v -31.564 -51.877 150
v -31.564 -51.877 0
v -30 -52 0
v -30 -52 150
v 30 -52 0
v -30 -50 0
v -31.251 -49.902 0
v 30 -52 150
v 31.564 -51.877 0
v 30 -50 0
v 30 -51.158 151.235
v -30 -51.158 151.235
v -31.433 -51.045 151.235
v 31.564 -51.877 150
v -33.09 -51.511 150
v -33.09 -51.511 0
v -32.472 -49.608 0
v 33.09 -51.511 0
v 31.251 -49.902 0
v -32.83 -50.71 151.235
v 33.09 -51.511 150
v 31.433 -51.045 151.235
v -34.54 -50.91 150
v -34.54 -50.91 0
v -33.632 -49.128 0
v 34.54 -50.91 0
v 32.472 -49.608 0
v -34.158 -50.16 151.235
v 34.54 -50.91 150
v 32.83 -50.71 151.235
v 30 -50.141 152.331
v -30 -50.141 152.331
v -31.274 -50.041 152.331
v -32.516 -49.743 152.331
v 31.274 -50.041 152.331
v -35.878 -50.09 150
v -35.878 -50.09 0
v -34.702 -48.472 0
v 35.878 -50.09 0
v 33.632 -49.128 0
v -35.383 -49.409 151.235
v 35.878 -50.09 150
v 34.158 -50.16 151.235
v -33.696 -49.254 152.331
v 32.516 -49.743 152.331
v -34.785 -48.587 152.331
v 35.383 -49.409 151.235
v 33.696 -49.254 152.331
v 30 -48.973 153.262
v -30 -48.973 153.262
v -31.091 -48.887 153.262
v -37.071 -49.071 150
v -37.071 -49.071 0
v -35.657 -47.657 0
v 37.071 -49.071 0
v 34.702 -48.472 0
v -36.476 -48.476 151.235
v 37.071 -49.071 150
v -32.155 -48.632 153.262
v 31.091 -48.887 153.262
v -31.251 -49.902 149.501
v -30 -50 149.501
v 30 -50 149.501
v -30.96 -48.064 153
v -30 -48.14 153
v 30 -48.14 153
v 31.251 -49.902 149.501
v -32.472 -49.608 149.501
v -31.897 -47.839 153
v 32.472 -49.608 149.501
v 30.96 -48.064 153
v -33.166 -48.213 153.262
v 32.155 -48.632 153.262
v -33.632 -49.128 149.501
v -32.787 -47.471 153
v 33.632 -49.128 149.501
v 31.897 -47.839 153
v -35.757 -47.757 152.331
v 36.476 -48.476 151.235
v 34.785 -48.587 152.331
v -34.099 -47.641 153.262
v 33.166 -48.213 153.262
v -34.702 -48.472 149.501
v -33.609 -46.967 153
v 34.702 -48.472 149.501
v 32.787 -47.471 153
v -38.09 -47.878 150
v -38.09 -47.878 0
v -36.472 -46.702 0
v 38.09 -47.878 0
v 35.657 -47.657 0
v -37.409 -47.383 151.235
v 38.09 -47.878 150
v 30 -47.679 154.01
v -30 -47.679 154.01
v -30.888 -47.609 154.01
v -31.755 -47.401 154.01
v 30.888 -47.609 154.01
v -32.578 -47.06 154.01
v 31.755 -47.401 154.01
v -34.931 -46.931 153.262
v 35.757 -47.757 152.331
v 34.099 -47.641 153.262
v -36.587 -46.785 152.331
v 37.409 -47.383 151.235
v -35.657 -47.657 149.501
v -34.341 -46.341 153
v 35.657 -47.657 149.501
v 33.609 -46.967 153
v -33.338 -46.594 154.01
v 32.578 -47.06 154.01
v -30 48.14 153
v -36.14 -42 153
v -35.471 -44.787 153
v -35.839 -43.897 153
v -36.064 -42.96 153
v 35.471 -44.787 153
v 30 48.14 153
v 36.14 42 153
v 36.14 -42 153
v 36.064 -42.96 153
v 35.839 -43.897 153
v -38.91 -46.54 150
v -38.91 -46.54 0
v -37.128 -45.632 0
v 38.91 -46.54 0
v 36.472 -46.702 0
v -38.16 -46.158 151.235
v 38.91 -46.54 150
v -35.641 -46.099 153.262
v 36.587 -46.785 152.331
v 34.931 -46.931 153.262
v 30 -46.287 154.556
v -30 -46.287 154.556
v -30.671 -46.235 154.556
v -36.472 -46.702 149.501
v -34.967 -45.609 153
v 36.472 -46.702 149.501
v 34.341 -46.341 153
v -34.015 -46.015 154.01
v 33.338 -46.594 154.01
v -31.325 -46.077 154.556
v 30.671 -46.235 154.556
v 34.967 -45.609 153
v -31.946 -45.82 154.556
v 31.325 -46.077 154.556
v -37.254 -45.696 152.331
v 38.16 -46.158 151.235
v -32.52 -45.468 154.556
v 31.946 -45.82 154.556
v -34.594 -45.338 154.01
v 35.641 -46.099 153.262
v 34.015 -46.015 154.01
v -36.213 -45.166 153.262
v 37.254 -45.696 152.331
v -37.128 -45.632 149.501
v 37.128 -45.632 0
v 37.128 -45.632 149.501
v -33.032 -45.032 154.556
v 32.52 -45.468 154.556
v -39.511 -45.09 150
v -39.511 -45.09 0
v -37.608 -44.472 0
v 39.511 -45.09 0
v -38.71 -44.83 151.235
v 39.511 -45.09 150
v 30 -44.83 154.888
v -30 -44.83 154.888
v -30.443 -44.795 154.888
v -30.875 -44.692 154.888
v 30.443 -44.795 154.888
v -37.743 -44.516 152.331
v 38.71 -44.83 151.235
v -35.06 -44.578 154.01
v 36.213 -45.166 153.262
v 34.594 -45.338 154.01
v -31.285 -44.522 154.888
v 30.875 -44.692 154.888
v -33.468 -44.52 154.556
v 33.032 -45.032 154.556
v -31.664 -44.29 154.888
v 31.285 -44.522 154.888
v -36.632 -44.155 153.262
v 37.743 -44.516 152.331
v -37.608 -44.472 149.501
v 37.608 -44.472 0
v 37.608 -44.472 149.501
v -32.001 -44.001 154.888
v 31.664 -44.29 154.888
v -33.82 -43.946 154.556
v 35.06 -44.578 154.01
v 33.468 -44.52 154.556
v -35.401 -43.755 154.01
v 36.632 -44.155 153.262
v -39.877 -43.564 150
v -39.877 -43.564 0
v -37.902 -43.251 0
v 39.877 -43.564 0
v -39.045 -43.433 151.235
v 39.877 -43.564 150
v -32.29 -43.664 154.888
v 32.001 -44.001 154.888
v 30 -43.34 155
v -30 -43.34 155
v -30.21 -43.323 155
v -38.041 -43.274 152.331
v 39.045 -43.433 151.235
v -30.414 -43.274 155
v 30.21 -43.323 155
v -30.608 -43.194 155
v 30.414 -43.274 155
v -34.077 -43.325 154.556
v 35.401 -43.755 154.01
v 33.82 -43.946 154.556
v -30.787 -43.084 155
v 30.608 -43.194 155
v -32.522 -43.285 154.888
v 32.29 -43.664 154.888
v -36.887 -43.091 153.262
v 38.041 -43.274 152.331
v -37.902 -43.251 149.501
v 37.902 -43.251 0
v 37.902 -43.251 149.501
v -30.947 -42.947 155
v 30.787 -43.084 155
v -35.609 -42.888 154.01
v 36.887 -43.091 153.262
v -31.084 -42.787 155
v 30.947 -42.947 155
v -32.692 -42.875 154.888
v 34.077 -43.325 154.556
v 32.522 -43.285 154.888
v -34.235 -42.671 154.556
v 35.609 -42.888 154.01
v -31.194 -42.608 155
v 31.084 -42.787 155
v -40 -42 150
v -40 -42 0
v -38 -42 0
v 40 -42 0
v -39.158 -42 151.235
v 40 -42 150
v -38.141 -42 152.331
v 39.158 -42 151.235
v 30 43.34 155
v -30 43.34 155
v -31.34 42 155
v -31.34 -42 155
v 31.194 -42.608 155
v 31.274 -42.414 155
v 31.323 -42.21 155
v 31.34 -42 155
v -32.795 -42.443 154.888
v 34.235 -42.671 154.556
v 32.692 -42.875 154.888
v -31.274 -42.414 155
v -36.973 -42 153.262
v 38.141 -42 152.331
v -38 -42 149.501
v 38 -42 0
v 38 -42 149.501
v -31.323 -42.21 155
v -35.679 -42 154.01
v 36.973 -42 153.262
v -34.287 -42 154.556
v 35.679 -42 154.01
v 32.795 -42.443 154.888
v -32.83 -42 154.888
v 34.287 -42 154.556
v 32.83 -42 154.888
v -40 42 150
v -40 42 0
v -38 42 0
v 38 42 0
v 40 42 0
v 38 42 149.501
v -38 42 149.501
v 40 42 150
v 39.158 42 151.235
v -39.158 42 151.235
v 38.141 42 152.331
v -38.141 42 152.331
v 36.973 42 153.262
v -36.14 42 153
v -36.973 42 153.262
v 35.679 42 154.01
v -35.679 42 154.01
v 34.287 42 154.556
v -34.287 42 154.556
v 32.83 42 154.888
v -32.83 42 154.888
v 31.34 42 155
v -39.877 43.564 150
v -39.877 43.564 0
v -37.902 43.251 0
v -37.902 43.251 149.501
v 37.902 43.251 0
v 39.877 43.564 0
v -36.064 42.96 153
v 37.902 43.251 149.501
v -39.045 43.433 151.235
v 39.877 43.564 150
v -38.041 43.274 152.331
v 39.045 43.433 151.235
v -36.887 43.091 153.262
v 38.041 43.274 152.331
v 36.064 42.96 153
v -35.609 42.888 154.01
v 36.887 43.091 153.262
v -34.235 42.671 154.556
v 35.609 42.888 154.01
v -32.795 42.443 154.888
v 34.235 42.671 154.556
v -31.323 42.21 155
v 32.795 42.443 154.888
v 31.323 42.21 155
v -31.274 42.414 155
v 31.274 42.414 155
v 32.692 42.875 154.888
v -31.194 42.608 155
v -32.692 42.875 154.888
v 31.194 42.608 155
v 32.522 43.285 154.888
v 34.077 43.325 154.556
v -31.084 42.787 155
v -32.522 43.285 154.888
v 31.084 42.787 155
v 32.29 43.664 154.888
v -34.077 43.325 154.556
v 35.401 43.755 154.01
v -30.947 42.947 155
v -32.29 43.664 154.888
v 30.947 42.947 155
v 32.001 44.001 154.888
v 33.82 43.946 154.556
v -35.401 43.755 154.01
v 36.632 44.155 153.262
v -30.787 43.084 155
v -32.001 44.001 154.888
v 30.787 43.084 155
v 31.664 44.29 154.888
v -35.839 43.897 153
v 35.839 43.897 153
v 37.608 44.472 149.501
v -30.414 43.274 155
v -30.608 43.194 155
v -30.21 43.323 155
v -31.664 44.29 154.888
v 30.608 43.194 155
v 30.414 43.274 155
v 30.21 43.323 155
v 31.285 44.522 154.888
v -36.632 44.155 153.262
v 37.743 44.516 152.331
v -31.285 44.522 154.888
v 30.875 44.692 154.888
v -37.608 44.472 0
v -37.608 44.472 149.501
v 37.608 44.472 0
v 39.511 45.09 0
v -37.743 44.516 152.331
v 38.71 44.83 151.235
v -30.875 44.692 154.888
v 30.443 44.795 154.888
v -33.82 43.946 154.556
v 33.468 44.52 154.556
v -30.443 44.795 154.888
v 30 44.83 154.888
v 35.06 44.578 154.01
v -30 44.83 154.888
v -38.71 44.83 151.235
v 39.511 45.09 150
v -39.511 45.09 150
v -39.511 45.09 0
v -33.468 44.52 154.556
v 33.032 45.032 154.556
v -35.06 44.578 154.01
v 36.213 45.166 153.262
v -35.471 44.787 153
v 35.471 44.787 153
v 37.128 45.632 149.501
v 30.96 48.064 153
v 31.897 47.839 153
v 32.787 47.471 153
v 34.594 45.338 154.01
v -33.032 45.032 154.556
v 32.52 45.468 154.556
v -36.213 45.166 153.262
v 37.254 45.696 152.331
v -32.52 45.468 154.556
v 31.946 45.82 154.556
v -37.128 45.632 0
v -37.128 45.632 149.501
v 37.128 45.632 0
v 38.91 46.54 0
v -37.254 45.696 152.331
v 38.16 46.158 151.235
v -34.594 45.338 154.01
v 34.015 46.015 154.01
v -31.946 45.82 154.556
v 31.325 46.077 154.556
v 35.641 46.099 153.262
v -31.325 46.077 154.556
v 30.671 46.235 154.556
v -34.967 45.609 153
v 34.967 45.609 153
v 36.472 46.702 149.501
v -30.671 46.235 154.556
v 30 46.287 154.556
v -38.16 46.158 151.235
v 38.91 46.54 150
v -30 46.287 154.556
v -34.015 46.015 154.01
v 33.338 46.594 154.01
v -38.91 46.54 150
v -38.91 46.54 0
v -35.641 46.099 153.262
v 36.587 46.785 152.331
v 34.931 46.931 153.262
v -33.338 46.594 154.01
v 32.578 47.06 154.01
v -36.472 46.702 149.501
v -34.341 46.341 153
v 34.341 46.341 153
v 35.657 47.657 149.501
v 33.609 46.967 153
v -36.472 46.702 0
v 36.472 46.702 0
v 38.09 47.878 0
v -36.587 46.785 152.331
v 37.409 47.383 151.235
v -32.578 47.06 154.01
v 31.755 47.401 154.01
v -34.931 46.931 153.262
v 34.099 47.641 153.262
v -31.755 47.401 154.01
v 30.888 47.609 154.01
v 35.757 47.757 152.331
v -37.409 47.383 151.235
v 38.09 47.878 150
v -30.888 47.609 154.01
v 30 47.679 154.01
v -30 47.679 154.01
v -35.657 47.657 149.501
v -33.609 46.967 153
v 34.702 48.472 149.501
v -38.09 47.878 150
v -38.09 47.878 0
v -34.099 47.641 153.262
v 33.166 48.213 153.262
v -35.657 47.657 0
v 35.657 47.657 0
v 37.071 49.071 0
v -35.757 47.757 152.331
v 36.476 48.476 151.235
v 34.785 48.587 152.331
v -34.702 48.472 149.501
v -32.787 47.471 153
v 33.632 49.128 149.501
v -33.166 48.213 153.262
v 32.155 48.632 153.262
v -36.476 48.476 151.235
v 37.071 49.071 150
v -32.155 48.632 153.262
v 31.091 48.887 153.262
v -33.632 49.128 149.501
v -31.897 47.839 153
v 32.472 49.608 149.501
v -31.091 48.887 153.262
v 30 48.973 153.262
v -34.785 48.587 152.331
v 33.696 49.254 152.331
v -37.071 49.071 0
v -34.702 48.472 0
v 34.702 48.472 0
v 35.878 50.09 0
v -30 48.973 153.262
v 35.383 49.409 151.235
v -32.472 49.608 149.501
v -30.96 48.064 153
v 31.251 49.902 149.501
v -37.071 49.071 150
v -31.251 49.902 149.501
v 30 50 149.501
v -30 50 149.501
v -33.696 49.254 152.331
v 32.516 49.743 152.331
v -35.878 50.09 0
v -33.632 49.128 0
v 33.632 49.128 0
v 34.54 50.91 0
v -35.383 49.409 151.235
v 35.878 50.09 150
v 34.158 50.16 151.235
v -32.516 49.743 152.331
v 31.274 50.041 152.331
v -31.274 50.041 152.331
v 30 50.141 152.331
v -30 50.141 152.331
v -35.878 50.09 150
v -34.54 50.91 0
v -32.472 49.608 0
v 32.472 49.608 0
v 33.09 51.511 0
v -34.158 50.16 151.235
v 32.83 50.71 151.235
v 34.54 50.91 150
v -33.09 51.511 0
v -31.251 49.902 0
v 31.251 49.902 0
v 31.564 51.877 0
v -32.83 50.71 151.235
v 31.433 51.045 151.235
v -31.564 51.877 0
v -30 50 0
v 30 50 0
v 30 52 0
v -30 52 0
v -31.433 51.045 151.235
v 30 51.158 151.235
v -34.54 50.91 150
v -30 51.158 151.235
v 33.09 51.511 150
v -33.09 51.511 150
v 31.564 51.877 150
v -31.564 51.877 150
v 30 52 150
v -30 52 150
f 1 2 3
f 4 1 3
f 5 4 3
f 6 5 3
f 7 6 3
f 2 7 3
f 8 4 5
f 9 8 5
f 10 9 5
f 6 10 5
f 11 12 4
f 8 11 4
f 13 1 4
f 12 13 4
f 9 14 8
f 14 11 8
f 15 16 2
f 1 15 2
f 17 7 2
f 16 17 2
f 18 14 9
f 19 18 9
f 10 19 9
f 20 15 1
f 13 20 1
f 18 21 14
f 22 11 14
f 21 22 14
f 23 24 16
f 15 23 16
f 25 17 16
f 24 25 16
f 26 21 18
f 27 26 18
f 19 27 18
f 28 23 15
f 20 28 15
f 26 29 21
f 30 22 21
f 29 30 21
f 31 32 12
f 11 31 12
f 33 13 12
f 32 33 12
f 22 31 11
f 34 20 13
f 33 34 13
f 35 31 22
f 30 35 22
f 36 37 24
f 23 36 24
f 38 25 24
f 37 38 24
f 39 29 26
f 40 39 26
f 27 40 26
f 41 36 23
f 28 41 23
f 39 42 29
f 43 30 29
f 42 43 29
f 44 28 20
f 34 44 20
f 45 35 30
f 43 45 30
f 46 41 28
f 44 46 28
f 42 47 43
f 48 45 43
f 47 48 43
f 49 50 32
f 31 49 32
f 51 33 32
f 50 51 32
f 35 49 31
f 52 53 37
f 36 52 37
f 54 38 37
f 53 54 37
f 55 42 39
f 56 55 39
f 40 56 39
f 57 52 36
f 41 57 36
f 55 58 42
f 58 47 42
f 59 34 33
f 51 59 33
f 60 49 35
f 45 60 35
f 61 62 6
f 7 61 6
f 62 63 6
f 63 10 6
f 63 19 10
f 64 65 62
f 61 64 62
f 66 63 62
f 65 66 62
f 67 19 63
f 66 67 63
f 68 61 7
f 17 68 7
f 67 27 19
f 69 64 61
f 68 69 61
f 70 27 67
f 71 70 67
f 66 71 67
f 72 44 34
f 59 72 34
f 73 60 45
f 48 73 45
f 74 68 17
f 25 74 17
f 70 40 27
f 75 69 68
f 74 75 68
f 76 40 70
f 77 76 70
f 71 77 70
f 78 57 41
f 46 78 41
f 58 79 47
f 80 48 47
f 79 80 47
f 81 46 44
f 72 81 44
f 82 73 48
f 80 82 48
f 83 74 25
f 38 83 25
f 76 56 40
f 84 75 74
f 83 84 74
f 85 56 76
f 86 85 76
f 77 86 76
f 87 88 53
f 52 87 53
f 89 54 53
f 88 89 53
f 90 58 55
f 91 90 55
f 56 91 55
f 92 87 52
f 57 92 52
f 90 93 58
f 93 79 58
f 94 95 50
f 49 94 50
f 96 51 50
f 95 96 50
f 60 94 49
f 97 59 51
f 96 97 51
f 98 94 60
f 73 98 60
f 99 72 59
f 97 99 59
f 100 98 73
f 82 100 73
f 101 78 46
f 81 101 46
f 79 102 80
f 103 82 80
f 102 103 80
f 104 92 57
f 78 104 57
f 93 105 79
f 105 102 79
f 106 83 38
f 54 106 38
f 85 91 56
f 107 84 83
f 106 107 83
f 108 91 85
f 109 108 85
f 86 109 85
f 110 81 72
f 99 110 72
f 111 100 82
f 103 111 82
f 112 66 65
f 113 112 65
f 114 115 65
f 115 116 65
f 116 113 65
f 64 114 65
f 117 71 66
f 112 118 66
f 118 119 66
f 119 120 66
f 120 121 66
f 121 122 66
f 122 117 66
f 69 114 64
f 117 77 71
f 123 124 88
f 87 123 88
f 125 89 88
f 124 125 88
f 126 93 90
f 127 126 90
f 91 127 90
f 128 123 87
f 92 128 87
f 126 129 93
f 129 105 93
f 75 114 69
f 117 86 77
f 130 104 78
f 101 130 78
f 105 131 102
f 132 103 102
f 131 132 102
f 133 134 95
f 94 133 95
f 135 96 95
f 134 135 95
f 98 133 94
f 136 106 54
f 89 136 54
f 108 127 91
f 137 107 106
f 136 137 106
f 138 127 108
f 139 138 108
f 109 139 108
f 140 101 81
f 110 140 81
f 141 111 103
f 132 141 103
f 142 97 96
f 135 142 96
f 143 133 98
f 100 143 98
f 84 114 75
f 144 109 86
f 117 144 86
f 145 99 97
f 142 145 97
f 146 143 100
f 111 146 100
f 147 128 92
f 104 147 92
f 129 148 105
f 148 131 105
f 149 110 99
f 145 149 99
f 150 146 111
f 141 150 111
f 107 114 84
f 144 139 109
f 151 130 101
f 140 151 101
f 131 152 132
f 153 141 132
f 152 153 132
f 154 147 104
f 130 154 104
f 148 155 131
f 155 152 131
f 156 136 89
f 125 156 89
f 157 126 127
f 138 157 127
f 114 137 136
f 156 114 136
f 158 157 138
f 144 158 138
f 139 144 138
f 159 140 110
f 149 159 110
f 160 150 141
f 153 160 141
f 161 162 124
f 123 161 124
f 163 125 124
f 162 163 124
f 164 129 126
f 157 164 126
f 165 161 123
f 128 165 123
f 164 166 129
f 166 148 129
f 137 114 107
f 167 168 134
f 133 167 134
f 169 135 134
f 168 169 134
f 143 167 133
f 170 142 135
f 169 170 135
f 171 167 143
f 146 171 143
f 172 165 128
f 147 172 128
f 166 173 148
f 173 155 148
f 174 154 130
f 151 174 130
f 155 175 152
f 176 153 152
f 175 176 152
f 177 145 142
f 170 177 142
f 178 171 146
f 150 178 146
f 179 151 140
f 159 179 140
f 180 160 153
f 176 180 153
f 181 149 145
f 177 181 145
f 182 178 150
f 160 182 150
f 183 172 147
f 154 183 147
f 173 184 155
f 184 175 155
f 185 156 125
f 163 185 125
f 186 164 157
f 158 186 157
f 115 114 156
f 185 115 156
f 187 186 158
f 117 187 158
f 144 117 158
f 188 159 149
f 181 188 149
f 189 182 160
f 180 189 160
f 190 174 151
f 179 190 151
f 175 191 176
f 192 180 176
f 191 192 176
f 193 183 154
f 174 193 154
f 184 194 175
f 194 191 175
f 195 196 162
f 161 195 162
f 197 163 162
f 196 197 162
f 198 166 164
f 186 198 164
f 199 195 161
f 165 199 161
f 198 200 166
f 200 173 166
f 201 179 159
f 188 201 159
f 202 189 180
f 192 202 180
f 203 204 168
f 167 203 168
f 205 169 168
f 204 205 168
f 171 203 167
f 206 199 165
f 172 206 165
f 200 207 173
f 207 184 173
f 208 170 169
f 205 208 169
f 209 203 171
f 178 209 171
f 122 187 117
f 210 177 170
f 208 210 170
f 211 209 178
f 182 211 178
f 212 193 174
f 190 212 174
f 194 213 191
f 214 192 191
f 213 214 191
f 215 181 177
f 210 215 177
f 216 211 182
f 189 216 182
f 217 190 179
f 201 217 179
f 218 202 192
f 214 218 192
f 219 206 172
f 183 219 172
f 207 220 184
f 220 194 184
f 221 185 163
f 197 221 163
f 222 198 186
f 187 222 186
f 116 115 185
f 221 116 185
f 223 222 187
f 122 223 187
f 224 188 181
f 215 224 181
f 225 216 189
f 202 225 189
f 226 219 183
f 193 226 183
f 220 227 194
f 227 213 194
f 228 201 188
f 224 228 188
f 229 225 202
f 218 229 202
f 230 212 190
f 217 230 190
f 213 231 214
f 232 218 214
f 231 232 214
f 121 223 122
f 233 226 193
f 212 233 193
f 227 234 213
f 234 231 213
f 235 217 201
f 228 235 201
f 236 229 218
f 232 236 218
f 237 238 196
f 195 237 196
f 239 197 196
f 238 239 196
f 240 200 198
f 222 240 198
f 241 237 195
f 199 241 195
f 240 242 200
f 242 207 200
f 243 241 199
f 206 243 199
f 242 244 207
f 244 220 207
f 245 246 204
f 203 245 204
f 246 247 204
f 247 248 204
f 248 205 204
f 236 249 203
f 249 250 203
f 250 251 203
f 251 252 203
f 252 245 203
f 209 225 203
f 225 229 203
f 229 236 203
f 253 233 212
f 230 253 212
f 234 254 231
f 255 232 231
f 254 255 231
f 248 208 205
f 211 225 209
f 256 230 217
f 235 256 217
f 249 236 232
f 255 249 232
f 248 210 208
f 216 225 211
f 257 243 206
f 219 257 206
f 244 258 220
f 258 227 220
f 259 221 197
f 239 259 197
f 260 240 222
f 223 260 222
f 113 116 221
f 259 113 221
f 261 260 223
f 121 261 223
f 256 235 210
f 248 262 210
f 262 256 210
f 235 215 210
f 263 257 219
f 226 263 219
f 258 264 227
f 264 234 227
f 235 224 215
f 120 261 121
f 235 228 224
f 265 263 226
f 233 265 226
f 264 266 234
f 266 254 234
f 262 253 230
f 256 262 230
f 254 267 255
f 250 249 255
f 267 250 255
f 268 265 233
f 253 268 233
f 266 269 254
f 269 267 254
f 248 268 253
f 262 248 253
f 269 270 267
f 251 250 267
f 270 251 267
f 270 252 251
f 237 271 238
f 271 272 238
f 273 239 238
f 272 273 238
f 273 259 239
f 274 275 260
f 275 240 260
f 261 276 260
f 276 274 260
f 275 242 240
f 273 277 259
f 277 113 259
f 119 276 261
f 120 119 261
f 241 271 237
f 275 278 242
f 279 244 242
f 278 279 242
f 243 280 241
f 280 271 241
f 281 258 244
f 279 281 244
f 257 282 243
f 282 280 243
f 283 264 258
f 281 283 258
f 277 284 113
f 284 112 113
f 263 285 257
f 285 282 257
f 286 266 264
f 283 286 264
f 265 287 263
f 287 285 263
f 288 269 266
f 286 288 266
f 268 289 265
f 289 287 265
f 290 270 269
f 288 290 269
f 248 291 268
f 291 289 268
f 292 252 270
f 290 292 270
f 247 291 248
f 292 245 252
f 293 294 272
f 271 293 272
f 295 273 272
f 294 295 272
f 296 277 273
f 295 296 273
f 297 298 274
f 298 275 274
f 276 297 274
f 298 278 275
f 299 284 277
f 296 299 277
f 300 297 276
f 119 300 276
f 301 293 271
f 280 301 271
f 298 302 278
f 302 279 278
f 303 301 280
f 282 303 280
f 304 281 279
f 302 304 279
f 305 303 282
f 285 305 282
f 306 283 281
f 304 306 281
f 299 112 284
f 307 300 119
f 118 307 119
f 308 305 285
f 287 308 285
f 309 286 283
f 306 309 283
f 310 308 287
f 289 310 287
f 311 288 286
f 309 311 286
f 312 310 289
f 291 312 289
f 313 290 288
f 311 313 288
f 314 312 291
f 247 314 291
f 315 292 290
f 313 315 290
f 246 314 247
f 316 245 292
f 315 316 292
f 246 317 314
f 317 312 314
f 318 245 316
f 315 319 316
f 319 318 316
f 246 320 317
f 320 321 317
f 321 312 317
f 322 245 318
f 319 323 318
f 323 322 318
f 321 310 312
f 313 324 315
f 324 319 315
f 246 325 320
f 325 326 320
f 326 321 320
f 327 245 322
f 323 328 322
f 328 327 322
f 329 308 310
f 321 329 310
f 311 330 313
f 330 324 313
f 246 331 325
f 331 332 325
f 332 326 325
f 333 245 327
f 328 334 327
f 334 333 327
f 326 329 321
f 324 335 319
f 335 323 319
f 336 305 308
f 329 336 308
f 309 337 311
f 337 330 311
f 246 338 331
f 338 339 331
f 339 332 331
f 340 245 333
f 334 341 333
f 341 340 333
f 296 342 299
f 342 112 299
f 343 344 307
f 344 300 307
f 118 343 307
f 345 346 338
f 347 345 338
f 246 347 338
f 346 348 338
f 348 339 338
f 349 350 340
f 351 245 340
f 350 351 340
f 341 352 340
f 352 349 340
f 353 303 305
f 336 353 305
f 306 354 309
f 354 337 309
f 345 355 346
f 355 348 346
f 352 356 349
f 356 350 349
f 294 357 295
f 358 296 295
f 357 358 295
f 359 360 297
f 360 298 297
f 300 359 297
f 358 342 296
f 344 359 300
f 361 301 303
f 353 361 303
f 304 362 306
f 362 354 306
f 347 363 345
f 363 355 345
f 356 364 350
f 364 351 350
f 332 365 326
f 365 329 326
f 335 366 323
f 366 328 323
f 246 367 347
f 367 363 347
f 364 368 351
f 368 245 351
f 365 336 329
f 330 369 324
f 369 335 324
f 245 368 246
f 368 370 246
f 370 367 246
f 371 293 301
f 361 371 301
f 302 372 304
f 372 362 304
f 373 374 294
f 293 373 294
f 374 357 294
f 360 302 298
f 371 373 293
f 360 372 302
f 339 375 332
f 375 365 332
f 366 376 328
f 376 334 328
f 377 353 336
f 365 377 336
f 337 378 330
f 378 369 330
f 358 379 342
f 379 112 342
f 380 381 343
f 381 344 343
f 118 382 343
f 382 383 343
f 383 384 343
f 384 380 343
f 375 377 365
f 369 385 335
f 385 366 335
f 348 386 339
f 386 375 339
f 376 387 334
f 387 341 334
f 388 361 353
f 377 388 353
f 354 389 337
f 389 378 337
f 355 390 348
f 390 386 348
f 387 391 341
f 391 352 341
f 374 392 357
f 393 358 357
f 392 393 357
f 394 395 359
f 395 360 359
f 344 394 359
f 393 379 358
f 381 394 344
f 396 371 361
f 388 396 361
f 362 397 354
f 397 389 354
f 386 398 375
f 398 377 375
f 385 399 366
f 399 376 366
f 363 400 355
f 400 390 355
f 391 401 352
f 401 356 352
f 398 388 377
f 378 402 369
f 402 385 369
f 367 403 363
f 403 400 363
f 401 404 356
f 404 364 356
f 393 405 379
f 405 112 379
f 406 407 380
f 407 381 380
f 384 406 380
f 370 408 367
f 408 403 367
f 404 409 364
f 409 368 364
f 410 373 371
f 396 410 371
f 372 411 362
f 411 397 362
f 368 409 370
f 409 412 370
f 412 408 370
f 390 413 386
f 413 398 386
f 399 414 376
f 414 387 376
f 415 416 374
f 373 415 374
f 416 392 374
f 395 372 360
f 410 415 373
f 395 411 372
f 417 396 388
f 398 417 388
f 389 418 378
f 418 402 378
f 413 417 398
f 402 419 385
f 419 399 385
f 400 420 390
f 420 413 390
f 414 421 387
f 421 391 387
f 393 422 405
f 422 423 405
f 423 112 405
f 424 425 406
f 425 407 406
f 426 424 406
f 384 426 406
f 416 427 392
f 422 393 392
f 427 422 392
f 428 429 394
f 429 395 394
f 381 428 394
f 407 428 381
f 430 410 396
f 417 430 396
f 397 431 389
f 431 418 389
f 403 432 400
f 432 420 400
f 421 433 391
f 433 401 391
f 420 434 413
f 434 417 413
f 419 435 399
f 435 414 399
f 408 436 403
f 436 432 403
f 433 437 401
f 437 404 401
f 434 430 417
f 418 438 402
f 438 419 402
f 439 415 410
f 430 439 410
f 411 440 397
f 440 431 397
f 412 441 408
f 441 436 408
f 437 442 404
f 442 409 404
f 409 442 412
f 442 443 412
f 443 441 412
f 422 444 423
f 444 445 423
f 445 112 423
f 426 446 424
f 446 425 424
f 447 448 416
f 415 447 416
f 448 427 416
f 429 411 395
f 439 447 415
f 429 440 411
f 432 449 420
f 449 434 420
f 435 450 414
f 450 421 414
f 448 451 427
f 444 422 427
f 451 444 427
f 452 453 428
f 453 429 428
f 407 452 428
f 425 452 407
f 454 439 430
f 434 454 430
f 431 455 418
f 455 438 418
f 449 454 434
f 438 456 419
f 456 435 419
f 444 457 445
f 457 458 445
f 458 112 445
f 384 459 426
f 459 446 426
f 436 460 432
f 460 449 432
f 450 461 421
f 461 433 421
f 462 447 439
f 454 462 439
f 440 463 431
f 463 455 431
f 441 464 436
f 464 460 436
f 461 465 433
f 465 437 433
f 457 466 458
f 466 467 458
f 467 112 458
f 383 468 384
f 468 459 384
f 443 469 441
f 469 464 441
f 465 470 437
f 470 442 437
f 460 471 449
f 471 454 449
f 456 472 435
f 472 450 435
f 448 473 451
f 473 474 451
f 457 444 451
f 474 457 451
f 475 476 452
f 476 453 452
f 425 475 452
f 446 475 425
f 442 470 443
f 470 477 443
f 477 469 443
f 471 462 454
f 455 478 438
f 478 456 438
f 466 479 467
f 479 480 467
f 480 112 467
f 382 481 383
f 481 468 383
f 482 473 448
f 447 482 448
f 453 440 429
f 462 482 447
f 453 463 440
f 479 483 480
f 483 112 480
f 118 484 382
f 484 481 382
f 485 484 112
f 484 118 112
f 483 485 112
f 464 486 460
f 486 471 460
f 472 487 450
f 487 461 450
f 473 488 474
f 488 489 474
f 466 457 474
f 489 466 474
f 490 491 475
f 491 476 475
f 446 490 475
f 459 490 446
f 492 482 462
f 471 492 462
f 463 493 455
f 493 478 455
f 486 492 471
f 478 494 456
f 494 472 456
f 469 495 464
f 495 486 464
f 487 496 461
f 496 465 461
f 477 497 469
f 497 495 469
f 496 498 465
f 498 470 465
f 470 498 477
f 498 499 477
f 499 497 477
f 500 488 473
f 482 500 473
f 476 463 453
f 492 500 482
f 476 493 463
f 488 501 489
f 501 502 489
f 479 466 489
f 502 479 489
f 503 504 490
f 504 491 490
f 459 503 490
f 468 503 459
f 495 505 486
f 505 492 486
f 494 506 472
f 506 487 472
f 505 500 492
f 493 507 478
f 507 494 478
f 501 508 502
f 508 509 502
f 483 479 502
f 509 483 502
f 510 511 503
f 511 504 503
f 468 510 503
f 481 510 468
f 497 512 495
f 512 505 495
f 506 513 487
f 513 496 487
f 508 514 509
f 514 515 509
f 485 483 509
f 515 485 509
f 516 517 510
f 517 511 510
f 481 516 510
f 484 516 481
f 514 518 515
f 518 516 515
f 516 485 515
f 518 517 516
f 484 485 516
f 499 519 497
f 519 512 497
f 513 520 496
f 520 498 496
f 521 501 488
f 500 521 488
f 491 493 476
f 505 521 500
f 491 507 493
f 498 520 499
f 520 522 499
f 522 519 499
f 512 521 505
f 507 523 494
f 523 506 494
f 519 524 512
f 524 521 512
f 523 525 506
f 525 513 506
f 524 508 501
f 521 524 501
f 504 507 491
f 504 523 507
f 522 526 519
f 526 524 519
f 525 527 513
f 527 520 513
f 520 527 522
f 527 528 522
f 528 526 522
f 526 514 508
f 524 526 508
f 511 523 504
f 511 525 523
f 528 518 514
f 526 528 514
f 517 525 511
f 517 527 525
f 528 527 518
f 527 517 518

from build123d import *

# Parameters (mm, degrees)
EXTRUDE_1_DEPTH = 150
EXTRUDE_3_DEPTH = 5
EXTRUDE_3_TAPER = 28
SHELL_9_T       = -2
FILLET_22_R     = 10


with BuildPart() as part:
    # 草圖1 → 填料-伸長1 (new body)
    with BuildSketch(Plane.XY):
        with BuildLine():
            Line((-30, 52), (30, 52))
            ThreePointArc((30, 52), (37.071067812, 49.071067812), (40, 42))
            Line((40, 42), (40, -42))
            ThreePointArc((40, -42), (37.071067812, -49.071067812), (30, -52))
            Line((30, -52), (-30, -52))
            ThreePointArc((-30, -52), (-37.071067812, -49.071067812), (-40, -42))
            Line((-40, -42), (-40, 42))
            ThreePointArc((-40, 42), (-37.071067812, 49.071067812), (-30, 52))
        make_face()
    extrude(amount=EXTRUDE_1_DEPTH)

    # 草圖3 → 填料-伸長3 (add)
    with BuildSketch(Plane.XY.offset(150)):
        with BuildLine():
            ThreePointArc((-30, 52), (-37.071067812, 49.071067812), (-40, 42))
            Line((-40, 42), (-40, -42))
            ThreePointArc((-40, -42), (-37.071067812, -49.071067812), (-30, -52))
            Line((-30, -52), (30, -52))
            ThreePointArc((30, -52), (37.071067812, -49.071067812), (40, -42))
            Line((40, -42), (40, 42))
            ThreePointArc((40, 42), (37.071067812, 49.071067812), (30, 52))
            Line((30, 52), (-30, 52))
        make_face()
    extrude(amount=EXTRUDE_3_DEPTH, taper=EXTRUDE_3_TAPER)

    # 薄殼9
    shell_9_openings = [part.faces().sort_by_distance(p)[0] for p in [
        (0, 0, 0),
    ]]
    offset(amount=SHELL_9_T, openings=shell_9_openings, kind=Kind.INTERSECTION)

    # 圓角22
    # the kernel refuses this fillet: 10 mm, written as the material it takes off along each edge
    with BuildSketch(Plane(origin=(-30, -42, 155), x_dir=(-1, 0, 0), z_dir=(0, 1, 0))) as fillet_22_piece_1:
        with BuildLine():
            CenterArc((1.339745962, -10), FILLET_22_R, 30, 60)
            Line((10, -5), (10.173205081, -4.9))
            ThreePointArc((10.173205081, -4.9), (8.847315939, -2.406105687), (7.51804236, 0.093894313))
            Line((7.51804236, 0.093894313), (7.341452842, 0.2))
            Line((7.341452842, 0.2), (1.339745962, 0.2))
            Line((1.339745962, 0.2), (1.339745962, 0))
        make_face()
    revolve(axis=Axis((-30, -42, 155), (0, 0, 1)), revolution_arc=90, mode=Mode.SUBTRACT)
    with BuildSketch(Plane(origin=(-37.341452842, 42, 155), x_dir=(1, 0, 0), z_dir=(0, -1, 0)), Plane(origin=(37.341452842, -42, 155), x_dir=(-1, 0, 0), z_dir=(0, 1, 0))) as fillet_22_piece_2:
        with BuildLine():
            CenterArc((6.00170688, -10), FILLET_22_R, 90, 60)
            Line((-2.658547158, -5), (-2.831752239, -4.9))
            ThreePointArc((-2.831752239, -4.9), (-1.505863098, -2.406105687), (-0.176589519, 0.093894313))
            Line((-0.176589519, 0.093894313), (0, 0.2))
            Line((0, 0.2), (6.00170688, 0.2))
            Line((6.00170688, 0.2), (6.00170688, 0))
        make_face()
    extrude(amount=84, mode=Mode.SUBTRACT)
    with BuildSketch(Plane(origin=(-30, 42, 155), x_dir=(0, 1, 0), z_dir=(1, 0, 0))) as fillet_22_piece_3:
        with BuildLine():
            CenterArc((1.339745962, -10), FILLET_22_R, 30, 60)
            Line((1.339745962, 0), (1.339745962, 0.2))
            Line((1.339745962, 0.2), (7.341452842, 0.2))
            Line((7.341452842, 0.2), (7.51804236, 0.093894313))
            ThreePointArc((7.51804236, 0.093894313), (8.847315939, -2.406105687), (10.173205081, -4.9))
            Line((10.173205081, -4.9), (10, -5))
        make_face()
    revolve(axis=Axis((-30, 42, 155), (0, 0, 1)), revolution_arc=90, mode=Mode.SUBTRACT)
    with BuildSketch(Plane(origin=(30, 49.341452842, 155), x_dir=(0, 0.46947156278588964, -0.8829475928589275), z_dir=(-1, 0, 0))) as fillet_22_piece_4:
        with BuildLine():
            CenterArc((6.01184522, 9.99390827), FILLET_22_R, 208, 60)
            Line((-2.817630708, 5.299192642), (-2.994220227, 5.20529833))
            Line((-2.994220227, 5.20529833), (-0.176589519, -0.093894313))
            Line((-0.176589519, -0.093894313), (0, -0.2))
            ThreePointArc((0, -0.2), (2.831425127, -0.2), (5.655870354, -0.199878165))
            Line((5.655870354, -0.199878165), (5.662850253, 0))
        make_face()
    extrude(amount=60, mode=Mode.SUBTRACT)
    with BuildSketch(Plane(origin=(30, 42, 155), x_dir=(1, 0, 0), z_dir=(0, -1, 0))) as fillet_22_piece_5:
        with BuildLine():
            CenterArc((1.339745962, -10), FILLET_22_R, 30, 60)
            Line((1.339745962, 0), (1.339745962, 0.2))
            Line((1.339745962, 0.2), (7.341452842, 0.2))
            Line((7.341452842, 0.2), (7.51804236, 0.093894313))
            ThreePointArc((7.51804236, 0.093894313), (8.847315939, -2.406105687), (10.173205081, -4.9))
            Line((10.173205081, -4.9), (10, -5))
        make_face()
    revolve(axis=Axis((30, 42, 155), (0, 0, 1)), revolution_arc=90, mode=Mode.SUBTRACT)
    with BuildSketch(Plane(origin=(30, -42, 155), x_dir=(0, -1, 0), z_dir=(-1, 0, 0))) as fillet_22_piece_6:
        with BuildLine():
            CenterArc((1.339745962, -10), FILLET_22_R, 30, 60)
            Line((10, -5), (10.173205081, -4.9))
            ThreePointArc((10.173205081, -4.9), (8.847315939, -2.406105687), (7.51804236, 0.093894313))
            Line((7.51804236, 0.093894313), (7.341452842, 0.2))
            Line((7.341452842, 0.2), (1.339745962, 0.2))
            Line((1.339745962, 0.2), (1.339745962, 0))
        make_face()
    revolve(axis=Axis((30, -42, 155), (0, 0, 1)), revolution_arc=90, mode=Mode.SUBTRACT)
    with BuildSketch(Plane(origin=(-30, -49.341452842, 155), x_dir=(0, 1, 0), z_dir=(1, 0, 0))) as fillet_22_piece_7:
        with BuildLine():
            CenterArc((6.00170688, -10), FILLET_22_R, 90, 60)
            Line((-2.658547158, -5), (-2.831752239, -4.9))
            ThreePointArc((-2.831752239, -4.9), (-1.505863098, -2.406105687), (-0.176589519, 0.093894313))
            Line((-0.176589519, 0.093894313), (0, 0.2))
            Line((0, 0.2), (6.00170688, 0.2))
            Line((6.00170688, 0.2), (6.00170688, 0))
        make_face()
    extrude(amount=60, mode=Mode.SUBTRACT)


solid = part.part
